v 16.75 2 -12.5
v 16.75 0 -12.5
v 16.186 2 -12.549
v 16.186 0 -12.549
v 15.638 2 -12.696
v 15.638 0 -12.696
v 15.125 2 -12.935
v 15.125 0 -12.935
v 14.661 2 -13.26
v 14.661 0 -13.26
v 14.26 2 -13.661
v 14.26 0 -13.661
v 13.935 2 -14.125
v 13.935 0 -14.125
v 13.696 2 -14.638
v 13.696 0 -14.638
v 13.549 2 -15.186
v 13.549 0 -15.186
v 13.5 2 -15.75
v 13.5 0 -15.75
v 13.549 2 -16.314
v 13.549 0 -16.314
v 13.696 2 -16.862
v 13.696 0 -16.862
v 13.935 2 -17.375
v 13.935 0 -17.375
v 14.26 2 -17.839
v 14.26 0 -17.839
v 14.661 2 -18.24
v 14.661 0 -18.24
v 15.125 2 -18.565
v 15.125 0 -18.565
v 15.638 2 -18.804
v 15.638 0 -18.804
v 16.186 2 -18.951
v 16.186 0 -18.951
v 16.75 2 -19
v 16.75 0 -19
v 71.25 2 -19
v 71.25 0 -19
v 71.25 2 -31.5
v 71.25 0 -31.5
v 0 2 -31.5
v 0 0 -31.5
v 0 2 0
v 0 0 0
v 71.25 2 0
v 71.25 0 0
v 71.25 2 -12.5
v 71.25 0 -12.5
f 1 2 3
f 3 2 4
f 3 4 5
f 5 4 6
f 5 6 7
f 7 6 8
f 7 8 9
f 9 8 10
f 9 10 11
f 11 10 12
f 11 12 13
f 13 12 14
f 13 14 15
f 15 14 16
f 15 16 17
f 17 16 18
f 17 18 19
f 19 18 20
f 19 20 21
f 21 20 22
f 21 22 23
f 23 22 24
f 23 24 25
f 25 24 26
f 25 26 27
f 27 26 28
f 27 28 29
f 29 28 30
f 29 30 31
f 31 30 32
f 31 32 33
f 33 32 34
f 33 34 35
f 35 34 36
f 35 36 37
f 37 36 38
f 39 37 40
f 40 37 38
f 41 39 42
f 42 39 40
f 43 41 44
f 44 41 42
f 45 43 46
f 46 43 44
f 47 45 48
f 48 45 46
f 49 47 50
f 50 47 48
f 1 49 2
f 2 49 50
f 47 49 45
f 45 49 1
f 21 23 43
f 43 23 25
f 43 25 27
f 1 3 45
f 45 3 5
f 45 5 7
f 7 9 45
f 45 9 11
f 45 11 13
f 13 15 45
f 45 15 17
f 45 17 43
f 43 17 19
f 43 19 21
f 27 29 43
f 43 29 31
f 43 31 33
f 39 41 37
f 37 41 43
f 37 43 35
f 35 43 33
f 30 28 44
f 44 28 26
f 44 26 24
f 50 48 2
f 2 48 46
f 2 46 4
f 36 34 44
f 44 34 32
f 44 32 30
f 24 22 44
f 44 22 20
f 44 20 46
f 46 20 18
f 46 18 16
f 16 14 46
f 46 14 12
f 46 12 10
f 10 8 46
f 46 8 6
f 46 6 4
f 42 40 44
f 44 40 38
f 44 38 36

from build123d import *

# Parameters (mm, degrees)
BOSS_EXTRUDE1_DEPTH = 2


with BuildPart() as part:
    # Sketch1 → Boss-Extrude1 (new body)
    with BuildSketch(Plane(origin=(0, 0, 0), x_dir=(1, 0, 0), z_dir=(0, 1, 0))):
        with BuildLine():
            Line((0, 31.5), (0, 0))
            Line((0, 0), (71.25, 0))
            Line((71.25, 0), (71.25, 12.5))
            Line((71.25, 12.5), (16.75, 12.5))
            ThreePointArc((16.75, 12.5), (13.5, 15.75), (16.75, 19))
            Line((16.75, 19), (71.25, 19))
            Line((71.25, 19), (71.25, 31.5))
            Line((71.25, 31.5), (0, 31.5))
        make_face()
    extrude(amount=BOSS_EXTRUDE1_DEPTH)


solid = part.part
